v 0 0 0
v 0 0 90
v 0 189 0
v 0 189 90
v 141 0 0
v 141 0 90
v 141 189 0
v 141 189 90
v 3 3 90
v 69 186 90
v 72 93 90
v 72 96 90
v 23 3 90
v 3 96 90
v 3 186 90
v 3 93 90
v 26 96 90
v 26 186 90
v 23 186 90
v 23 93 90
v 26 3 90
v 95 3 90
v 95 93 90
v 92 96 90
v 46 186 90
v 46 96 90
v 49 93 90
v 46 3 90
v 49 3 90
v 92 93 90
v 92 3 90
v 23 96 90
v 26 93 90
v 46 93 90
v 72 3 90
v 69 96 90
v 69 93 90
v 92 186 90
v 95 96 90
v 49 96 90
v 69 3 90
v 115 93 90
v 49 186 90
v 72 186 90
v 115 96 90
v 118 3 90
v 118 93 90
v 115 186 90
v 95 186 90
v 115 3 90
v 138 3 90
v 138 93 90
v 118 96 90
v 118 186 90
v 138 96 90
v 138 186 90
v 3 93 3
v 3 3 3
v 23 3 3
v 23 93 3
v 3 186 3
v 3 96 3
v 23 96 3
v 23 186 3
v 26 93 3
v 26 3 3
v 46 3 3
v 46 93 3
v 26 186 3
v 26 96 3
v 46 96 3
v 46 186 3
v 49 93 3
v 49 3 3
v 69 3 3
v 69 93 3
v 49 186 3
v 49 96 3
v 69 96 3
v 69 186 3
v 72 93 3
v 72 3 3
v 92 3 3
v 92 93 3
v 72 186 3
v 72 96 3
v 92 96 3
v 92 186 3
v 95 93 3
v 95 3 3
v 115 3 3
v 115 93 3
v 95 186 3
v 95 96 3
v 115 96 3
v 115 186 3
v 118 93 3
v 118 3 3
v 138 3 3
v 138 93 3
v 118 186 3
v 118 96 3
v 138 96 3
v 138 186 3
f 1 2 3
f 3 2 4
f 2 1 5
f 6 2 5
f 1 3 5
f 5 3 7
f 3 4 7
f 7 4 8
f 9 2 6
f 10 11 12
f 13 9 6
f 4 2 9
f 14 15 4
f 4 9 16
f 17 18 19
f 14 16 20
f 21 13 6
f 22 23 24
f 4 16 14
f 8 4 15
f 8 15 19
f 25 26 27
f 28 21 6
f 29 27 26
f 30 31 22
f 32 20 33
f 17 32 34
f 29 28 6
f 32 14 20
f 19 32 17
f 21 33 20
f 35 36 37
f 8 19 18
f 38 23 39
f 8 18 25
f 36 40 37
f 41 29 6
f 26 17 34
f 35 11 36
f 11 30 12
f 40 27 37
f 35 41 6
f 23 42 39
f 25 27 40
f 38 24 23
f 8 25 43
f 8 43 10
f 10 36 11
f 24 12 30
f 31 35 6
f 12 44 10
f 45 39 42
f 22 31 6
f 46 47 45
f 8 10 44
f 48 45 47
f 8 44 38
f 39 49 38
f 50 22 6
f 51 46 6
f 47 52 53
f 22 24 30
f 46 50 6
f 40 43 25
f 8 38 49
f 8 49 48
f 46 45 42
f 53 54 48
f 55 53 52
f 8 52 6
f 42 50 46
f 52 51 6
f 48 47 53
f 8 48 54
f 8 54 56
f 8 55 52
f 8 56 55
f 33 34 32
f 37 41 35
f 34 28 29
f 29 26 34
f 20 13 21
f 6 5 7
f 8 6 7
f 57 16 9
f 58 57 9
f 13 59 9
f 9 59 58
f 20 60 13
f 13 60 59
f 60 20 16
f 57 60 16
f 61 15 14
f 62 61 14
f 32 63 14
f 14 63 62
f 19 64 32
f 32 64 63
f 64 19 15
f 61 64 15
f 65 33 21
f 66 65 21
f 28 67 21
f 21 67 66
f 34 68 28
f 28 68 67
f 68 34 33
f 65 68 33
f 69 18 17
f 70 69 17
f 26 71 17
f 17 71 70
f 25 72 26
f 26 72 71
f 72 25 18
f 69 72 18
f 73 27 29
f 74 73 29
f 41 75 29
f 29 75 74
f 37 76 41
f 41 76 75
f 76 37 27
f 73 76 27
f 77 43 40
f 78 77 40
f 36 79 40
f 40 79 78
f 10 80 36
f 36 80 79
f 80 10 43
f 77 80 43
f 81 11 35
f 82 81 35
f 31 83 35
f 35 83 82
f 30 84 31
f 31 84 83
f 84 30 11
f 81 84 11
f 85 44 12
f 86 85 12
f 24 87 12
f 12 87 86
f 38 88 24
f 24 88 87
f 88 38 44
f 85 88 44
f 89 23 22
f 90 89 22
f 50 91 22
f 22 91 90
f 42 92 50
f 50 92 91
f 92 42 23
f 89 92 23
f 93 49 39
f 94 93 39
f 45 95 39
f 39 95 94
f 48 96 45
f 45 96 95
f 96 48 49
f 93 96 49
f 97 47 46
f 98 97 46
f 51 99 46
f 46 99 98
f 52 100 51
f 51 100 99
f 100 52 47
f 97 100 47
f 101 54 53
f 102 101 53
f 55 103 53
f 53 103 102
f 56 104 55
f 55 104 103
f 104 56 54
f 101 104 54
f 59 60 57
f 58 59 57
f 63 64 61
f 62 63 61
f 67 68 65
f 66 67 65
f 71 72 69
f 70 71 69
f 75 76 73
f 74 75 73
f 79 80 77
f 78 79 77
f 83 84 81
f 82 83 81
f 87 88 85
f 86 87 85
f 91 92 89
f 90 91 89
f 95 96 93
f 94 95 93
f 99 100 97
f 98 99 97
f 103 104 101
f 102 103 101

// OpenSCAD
wall_floor=3;
drawer_length=90;
drawer_width=20;

rows=6;
columns=2;

height=90;

total_width=(rows+1)*wall_floor+(rows*drawer_width);
total_length=(columns+1)*wall_floor+(columns*drawer_length);


echo("length=", total_length, " and width=", total_width);


difference(){
cube([total_width,total_length,height]);

for ( r = [0 : rows-1] ){
  for ( c = [0 : columns-1] ){
     translate([wall_floor+r*(wall_floor+drawer_width),wall_floor+c*(wall_floor+drawer_length),wall_floor]){
		cube([drawer_width,drawer_length,height]);
	  }
  }

}
}
